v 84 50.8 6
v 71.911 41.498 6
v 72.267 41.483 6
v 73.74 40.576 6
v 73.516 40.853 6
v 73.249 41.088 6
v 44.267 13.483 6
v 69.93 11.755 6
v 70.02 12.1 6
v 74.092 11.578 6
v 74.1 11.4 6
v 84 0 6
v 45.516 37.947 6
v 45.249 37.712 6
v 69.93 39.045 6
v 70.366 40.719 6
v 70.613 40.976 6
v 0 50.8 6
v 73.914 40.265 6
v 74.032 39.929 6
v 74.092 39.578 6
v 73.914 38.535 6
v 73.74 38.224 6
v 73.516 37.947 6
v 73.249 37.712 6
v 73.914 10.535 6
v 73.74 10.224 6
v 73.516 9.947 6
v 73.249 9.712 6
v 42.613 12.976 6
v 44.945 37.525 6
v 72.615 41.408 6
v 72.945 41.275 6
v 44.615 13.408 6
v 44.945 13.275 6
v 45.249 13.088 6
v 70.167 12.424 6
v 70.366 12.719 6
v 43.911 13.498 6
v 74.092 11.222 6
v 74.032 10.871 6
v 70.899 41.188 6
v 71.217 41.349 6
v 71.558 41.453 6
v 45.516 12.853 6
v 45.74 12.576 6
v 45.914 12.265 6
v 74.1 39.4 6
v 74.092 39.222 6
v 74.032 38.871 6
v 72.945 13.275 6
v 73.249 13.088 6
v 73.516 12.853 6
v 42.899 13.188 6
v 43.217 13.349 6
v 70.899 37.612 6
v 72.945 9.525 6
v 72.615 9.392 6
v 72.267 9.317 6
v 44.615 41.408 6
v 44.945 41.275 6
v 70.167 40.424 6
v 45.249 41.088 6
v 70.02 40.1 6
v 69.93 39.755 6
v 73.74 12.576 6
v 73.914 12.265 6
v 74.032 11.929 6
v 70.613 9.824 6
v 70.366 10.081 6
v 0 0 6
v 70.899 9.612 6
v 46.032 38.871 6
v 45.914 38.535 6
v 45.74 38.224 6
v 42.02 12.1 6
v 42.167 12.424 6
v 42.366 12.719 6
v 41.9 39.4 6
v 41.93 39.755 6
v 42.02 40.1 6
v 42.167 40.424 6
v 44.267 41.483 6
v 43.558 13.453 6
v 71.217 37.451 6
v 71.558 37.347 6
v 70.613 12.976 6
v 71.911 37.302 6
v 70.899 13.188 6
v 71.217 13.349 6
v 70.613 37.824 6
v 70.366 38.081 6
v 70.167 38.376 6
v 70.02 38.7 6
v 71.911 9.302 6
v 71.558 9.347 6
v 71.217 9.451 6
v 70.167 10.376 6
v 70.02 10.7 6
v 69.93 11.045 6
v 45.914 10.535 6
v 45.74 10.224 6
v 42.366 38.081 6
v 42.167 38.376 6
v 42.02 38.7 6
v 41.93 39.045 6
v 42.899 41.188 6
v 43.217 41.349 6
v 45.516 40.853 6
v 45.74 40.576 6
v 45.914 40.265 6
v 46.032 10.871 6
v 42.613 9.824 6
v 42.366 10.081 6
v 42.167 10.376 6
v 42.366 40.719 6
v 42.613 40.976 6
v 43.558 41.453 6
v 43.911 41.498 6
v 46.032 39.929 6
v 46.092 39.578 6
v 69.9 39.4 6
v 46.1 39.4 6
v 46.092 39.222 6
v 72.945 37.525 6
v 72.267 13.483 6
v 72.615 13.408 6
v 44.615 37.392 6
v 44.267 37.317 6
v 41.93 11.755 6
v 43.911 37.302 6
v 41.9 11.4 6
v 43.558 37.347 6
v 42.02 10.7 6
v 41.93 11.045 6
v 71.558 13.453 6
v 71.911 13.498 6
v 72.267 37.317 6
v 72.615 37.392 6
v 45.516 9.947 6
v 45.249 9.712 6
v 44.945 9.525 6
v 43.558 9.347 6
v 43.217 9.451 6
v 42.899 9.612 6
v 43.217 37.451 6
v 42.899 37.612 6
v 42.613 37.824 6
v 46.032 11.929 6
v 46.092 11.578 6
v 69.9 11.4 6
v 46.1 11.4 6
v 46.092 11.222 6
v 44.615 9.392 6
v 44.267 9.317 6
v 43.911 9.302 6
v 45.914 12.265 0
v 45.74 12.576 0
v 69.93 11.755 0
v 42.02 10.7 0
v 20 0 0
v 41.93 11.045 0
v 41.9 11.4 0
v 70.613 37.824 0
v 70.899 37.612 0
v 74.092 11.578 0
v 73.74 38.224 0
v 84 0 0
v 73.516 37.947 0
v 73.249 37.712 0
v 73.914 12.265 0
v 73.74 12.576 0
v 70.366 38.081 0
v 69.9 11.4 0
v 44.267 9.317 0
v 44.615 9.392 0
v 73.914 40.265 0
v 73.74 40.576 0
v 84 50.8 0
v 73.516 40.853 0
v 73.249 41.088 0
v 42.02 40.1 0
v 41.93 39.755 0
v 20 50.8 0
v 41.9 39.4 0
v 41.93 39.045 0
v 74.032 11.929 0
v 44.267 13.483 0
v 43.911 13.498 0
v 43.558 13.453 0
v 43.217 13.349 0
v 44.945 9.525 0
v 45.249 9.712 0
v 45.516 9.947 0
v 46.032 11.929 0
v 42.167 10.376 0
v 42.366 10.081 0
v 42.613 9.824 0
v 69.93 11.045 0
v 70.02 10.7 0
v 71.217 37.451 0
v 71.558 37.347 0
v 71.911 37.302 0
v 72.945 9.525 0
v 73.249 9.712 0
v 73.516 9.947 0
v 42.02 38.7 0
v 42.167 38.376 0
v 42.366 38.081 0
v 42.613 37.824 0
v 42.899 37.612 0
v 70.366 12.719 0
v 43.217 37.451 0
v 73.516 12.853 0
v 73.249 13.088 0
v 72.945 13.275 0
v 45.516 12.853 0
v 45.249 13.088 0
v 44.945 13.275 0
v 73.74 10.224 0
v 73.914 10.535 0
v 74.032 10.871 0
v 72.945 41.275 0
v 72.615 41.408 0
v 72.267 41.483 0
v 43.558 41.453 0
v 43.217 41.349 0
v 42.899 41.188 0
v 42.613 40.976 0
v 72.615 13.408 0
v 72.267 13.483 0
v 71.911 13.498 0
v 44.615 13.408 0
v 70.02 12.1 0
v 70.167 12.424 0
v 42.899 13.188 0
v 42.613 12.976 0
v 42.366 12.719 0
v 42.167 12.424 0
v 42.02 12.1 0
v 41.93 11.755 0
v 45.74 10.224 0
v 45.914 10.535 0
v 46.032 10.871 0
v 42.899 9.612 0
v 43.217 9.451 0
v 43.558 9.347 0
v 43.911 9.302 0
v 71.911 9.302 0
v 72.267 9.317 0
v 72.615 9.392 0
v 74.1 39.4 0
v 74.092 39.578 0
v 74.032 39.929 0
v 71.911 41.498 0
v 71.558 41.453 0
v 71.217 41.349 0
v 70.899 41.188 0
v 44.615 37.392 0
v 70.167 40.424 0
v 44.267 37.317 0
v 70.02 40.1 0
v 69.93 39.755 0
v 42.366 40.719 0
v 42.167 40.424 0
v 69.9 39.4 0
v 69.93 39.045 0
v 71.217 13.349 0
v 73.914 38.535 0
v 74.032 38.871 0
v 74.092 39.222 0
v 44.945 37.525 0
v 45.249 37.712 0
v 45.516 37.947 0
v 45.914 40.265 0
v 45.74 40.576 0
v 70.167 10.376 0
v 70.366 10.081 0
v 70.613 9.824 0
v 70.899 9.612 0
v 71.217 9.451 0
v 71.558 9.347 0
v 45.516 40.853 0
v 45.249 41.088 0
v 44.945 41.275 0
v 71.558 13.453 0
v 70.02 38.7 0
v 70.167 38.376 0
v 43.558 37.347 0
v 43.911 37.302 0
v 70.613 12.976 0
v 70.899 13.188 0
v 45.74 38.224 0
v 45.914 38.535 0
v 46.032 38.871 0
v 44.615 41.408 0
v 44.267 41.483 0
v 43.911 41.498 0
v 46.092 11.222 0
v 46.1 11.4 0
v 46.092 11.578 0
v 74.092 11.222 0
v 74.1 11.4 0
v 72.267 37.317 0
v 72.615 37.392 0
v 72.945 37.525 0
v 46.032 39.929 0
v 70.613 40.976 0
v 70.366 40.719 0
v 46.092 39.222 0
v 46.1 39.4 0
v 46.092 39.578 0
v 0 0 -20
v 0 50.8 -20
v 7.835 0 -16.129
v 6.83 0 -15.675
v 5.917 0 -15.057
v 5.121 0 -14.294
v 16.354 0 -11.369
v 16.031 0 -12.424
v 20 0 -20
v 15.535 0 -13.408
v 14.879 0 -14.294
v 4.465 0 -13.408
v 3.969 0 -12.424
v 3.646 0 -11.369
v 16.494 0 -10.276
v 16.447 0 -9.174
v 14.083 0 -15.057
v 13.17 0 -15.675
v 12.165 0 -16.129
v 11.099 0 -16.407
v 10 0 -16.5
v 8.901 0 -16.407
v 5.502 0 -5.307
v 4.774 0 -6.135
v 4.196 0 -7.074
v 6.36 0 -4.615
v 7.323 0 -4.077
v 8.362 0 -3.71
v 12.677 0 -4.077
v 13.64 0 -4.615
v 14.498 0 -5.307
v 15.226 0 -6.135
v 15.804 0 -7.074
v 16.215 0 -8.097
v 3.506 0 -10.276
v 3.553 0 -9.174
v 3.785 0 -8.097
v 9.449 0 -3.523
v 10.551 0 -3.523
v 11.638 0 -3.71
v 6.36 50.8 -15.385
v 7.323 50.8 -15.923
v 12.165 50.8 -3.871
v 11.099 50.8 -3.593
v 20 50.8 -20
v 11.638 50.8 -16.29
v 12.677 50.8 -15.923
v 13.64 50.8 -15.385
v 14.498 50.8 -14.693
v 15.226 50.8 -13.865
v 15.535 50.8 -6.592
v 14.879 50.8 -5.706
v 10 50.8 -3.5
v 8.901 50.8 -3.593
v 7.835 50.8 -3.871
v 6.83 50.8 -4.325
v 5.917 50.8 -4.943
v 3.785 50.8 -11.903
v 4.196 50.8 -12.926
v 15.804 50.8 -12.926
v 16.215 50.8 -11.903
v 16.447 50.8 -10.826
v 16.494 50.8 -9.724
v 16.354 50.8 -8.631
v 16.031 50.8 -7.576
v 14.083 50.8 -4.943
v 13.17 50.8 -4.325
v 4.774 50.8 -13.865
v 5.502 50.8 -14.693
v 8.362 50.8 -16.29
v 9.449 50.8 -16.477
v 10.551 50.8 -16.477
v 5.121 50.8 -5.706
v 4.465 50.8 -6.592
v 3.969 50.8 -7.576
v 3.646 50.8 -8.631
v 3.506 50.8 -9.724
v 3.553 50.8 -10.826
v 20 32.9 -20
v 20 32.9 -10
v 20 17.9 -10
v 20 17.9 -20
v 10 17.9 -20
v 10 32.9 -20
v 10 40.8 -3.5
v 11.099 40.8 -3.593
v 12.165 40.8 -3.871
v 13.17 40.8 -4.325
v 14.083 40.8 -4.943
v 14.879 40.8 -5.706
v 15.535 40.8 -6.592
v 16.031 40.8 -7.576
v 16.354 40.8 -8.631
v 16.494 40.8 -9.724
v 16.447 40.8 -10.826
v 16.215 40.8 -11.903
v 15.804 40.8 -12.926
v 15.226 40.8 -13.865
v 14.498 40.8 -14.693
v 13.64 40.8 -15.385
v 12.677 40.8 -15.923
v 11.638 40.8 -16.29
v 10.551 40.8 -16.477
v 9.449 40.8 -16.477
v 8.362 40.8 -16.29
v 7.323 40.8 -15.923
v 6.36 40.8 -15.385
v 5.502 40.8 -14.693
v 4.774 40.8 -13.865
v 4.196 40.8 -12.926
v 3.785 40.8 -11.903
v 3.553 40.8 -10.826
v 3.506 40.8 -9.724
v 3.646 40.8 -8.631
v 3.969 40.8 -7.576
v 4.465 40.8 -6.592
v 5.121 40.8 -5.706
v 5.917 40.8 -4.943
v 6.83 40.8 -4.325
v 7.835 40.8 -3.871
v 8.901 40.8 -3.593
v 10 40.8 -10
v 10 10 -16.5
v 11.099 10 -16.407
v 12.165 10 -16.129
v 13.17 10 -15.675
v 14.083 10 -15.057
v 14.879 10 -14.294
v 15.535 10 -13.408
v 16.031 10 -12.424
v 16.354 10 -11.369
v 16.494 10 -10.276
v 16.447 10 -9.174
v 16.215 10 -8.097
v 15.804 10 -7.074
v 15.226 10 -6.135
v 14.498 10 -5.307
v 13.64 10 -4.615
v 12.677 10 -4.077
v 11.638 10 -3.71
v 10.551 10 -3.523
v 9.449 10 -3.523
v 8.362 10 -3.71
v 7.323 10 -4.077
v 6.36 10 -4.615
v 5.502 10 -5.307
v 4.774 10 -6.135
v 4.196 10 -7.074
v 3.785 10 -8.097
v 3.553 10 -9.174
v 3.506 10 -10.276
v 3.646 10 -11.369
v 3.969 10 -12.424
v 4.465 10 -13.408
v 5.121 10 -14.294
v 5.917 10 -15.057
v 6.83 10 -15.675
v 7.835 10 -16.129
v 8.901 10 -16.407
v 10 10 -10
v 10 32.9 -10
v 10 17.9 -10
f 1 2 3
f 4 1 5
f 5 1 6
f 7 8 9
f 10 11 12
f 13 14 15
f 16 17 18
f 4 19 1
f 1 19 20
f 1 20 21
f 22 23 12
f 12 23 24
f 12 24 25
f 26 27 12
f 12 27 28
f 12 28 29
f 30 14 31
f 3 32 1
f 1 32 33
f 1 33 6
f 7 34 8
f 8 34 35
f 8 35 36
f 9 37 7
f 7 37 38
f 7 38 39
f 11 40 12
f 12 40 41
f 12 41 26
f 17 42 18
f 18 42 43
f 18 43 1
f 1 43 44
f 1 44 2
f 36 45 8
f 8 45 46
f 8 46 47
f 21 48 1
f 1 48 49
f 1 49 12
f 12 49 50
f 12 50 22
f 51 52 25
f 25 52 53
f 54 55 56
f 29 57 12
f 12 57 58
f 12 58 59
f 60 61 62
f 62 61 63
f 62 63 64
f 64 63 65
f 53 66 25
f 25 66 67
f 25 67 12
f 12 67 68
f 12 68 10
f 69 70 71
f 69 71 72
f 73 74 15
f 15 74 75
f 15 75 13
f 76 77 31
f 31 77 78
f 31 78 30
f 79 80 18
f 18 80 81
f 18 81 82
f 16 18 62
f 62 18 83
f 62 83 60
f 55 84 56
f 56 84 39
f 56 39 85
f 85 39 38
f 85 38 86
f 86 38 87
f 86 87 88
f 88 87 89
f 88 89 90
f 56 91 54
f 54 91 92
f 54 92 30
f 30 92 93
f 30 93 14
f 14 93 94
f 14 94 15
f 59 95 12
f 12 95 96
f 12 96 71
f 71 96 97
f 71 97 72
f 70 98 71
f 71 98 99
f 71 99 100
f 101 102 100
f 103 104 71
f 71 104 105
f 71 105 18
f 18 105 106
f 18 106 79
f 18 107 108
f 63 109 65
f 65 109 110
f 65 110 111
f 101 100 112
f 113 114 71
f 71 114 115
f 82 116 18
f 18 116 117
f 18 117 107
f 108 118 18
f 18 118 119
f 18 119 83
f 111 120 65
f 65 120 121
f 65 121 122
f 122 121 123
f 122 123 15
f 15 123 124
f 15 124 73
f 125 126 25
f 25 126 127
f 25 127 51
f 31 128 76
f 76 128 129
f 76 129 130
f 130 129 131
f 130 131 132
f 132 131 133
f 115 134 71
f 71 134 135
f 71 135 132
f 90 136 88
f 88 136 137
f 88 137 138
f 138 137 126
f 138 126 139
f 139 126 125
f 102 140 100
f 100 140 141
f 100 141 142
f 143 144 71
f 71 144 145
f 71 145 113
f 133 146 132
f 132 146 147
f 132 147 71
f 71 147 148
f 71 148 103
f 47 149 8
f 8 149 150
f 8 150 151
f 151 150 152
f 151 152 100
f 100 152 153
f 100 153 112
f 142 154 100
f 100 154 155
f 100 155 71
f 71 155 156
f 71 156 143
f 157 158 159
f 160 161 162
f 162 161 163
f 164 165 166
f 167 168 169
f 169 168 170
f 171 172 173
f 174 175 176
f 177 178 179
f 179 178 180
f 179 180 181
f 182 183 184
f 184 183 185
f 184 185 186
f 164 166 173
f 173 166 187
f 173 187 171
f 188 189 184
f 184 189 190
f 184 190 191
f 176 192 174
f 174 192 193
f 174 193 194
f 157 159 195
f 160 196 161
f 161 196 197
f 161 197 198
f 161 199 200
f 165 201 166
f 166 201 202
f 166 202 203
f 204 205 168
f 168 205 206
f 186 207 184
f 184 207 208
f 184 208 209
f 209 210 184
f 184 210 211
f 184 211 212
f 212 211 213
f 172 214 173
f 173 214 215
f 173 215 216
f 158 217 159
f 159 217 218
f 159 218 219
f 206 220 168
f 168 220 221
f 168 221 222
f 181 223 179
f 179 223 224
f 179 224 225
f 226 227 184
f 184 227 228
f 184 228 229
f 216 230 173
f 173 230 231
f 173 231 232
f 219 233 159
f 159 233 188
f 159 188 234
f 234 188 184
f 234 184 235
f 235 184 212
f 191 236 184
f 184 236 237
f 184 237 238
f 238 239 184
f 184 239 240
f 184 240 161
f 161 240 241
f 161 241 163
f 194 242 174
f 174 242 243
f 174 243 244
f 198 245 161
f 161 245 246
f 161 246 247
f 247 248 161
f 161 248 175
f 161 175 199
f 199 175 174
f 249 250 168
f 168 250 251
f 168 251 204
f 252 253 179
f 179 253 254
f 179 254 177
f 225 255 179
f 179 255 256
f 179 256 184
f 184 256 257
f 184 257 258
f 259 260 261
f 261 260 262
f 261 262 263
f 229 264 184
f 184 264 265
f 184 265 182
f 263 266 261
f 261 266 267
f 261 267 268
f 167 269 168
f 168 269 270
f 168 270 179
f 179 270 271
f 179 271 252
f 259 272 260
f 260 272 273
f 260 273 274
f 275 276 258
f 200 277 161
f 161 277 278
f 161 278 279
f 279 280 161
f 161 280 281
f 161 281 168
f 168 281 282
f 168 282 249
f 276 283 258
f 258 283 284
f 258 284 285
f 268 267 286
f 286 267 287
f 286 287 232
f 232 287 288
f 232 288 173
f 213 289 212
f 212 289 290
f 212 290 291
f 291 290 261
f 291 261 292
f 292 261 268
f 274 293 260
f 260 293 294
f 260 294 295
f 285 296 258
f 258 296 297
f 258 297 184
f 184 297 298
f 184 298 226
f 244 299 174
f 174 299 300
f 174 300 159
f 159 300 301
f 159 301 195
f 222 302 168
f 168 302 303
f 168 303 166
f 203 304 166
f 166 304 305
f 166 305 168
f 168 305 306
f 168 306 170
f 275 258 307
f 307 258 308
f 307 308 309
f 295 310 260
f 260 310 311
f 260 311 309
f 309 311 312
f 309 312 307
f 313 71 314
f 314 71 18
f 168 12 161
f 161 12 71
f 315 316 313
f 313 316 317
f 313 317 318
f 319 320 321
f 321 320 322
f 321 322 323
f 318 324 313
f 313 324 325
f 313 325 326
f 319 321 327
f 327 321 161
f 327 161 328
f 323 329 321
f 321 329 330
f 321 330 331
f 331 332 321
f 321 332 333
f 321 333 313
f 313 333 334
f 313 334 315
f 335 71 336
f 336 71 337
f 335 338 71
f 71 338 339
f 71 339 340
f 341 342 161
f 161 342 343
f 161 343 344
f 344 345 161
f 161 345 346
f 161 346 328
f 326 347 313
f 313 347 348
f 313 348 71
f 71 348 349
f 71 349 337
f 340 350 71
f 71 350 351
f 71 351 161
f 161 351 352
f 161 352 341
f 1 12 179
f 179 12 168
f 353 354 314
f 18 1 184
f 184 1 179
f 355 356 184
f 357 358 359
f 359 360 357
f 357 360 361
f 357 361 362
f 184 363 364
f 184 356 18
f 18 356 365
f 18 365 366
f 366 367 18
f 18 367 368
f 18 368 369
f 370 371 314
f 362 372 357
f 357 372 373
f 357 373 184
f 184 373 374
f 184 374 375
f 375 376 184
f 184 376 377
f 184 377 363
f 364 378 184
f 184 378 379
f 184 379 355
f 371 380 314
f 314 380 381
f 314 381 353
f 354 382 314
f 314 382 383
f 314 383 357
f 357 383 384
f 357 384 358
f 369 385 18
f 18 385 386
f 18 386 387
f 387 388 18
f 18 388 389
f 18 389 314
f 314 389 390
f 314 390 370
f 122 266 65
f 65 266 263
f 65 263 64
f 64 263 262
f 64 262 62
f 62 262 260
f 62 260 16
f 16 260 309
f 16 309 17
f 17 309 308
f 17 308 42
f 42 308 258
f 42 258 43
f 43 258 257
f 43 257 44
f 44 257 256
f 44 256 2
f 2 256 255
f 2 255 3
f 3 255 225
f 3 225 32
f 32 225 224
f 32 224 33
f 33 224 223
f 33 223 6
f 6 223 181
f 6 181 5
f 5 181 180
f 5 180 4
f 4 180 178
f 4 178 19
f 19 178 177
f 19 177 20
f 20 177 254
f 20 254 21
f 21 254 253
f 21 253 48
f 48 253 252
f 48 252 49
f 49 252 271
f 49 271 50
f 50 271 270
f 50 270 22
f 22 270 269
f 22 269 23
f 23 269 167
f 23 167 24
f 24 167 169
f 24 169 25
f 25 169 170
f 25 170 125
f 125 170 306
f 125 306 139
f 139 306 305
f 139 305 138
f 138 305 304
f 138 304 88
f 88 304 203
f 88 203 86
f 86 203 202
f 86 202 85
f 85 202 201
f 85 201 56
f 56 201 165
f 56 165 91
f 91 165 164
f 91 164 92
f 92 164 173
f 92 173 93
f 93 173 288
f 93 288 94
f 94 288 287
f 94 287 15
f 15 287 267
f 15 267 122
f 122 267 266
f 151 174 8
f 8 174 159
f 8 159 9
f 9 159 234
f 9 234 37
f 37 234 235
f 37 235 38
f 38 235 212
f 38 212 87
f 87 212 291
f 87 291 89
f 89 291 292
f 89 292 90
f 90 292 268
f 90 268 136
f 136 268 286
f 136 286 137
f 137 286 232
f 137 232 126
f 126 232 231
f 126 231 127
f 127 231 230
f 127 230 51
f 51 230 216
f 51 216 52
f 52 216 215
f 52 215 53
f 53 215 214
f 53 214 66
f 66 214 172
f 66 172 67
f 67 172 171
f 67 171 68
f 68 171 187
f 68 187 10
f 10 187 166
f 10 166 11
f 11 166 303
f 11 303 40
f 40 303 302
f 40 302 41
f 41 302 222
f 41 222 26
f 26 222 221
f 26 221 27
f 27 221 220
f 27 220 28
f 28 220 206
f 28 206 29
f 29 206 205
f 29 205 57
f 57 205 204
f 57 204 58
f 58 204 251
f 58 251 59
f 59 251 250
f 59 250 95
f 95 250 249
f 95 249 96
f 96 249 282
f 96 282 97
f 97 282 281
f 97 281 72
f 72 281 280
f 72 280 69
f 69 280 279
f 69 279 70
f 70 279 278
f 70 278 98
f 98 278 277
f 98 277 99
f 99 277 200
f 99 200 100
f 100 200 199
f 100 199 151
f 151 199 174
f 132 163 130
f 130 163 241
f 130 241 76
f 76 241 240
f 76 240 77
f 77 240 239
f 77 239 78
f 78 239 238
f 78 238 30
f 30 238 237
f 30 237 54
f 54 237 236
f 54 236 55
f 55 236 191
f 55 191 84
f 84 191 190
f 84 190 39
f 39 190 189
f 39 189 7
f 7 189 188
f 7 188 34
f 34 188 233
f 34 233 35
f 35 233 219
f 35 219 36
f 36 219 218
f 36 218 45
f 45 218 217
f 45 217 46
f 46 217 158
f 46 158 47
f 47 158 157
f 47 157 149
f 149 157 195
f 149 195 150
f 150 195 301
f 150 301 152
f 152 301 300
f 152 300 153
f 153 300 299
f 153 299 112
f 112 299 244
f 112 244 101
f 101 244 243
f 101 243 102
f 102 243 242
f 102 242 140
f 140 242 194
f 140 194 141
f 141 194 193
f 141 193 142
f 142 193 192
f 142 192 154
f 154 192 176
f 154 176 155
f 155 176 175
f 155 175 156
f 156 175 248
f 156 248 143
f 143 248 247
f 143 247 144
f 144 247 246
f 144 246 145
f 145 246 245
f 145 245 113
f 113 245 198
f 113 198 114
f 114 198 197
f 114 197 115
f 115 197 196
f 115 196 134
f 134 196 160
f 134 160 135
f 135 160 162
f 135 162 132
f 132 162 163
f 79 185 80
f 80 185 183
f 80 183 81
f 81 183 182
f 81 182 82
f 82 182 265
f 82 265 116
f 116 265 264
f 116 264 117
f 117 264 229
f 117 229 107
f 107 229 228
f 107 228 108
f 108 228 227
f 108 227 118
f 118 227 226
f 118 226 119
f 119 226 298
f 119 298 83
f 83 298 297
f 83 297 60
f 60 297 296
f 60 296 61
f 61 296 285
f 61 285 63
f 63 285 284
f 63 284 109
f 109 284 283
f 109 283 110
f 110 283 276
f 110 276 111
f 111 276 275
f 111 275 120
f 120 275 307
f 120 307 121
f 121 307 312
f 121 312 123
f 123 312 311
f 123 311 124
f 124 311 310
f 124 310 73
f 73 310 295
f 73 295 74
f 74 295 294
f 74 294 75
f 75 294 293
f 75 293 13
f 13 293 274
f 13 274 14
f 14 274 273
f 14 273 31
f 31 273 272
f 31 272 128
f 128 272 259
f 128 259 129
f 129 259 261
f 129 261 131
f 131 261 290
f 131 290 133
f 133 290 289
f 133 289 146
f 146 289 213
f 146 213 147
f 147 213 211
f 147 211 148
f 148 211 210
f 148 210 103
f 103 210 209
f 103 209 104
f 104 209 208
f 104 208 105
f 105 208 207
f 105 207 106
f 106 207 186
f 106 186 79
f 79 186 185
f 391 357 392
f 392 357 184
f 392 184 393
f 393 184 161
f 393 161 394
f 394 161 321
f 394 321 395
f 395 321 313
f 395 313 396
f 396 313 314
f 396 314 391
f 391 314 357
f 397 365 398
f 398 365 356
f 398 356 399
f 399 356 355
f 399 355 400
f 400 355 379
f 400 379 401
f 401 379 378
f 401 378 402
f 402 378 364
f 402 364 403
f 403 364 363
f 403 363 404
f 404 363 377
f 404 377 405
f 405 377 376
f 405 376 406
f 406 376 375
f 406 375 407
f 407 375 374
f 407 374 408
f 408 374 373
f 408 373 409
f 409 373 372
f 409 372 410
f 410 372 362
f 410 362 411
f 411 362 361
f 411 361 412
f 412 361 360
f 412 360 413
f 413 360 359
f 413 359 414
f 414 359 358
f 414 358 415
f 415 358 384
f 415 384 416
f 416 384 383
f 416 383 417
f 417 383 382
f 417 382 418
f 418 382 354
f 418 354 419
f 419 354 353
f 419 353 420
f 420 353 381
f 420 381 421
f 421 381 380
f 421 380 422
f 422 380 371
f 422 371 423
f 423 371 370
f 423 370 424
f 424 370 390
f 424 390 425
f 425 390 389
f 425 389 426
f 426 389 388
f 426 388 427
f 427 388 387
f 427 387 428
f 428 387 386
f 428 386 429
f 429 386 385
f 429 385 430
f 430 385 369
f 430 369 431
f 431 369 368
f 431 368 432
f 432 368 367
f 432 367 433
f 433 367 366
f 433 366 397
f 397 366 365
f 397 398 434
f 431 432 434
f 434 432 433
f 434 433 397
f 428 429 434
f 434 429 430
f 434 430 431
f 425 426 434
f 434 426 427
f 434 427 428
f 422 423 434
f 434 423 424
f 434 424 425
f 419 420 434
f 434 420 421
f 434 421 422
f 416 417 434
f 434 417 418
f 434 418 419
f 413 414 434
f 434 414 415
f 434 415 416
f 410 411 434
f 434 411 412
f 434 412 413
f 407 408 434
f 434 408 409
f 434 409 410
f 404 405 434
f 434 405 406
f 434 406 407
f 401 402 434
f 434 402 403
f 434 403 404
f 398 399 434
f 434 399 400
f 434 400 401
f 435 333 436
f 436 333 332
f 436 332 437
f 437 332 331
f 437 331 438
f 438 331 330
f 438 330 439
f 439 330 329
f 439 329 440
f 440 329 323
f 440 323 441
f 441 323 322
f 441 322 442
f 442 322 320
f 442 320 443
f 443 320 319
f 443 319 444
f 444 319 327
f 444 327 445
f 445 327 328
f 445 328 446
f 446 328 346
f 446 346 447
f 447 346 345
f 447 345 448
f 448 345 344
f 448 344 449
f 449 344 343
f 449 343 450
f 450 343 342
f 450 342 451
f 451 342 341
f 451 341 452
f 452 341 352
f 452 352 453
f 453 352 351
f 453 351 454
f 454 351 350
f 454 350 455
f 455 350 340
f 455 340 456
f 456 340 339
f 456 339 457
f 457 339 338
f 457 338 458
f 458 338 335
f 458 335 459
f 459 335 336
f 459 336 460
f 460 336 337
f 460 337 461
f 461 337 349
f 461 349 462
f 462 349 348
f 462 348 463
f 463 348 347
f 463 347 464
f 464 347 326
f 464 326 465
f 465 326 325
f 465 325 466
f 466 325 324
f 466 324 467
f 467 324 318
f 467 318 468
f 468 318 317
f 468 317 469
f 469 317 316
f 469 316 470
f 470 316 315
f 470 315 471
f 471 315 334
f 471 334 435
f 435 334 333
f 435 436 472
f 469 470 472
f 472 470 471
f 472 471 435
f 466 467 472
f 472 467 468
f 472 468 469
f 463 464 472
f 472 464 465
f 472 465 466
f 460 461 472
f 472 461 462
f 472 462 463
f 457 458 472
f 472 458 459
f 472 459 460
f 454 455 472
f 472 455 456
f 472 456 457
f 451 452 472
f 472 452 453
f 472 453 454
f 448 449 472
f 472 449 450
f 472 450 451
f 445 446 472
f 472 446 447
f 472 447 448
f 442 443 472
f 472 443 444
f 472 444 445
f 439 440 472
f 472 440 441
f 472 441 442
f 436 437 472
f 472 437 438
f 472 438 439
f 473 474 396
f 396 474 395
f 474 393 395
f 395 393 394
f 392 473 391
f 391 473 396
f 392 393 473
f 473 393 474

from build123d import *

# Parameters (mm, degrees)
SKETCH1_W           = 84
SKETCH1_H           = 50.8
SKETCH1_R           = 2.1
BOSS_EXTRUDE1_DEPTH = 6
SKETCH3_W           = 20
SKETCH3_H           = 50.8
BOSS_EXTRUDE2_DEPTH = 20
SKETCH5_R           = 6.5
CUT_EXTRUDE1_DEPTH  = 10
CUT_EXTRUDE2_START  = -10
SKETCH6_R           = 6.5
CUT_EXTRUDE2_DEPTH  = 10
SKETCH7_W           = 10
SKETCH7_H           = 15
CUT_EXTRUDE3_DEPTH  = 10


with BuildPart() as part:
    # Sketch1 → Boss-Extrude1 (new body)
    with BuildSketch(Plane.XY):
        with Locations((42, 25.4)):
            Rectangle(SKETCH1_W, SKETCH1_H)
        with Locations((72, 39.4)):
            Circle(SKETCH1_R, mode=Mode.SUBTRACT)
        with Locations((72, 11.4)):
            Circle(SKETCH1_R, mode=Mode.SUBTRACT)
        with Locations((44, 39.4)):
            Circle(SKETCH1_R, mode=Mode.SUBTRACT)
        with Locations((44, 11.4)):
            Circle(SKETCH1_R, mode=Mode.SUBTRACT)
    extrude(amount=BOSS_EXTRUDE1_DEPTH)

    # Sketch3 → Boss-Extrude2 (add)
    with BuildSketch(Plane(origin=(0, 0, 0), x_dir=(-1, 0, 0), z_dir=(0, 0, -1))):
        with Locations((-10, 25.4)):
            Rectangle(SKETCH3_W, SKETCH3_H)
    extrude(amount=BOSS_EXTRUDE2_DEPTH)

    # Sketch5 → Cut-Extrude1 (cut)
    with BuildSketch(Plane(origin=(0, 50.8, 0), x_dir=(1, 0, 0), z_dir=(0, 1, 0))):
        with Locations(Location((10, 10, 0), (0, 0, 270))):
            Circle(SKETCH5_R)
    extrude(amount=-CUT_EXTRUDE1_DEPTH, mode=Mode.SUBTRACT)

    # Sketch6 → Cut-Extrude2 (cut)
    with BuildSketch(Plane.XZ.offset(CUT_EXTRUDE2_START)):
        with Locations(Location((10, -10, 0), (0, 0, 90))):
            Circle(SKETCH6_R)
    extrude(amount=CUT_EXTRUDE2_DEPTH, mode=Mode.SUBTRACT)

    # Sketch7 → Cut-Extrude3 (cut)
    with BuildSketch(Plane(origin=(0, 0, -20), x_dir=(-1, 0, 0), z_dir=(0, 0, -1))):
        with Locations((-15, 25.4)):
            Rectangle(SKETCH7_W, SKETCH7_H)
    extrude(amount=-CUT_EXTRUDE3_DEPTH, mode=Mode.SUBTRACT)


solid = part.part
